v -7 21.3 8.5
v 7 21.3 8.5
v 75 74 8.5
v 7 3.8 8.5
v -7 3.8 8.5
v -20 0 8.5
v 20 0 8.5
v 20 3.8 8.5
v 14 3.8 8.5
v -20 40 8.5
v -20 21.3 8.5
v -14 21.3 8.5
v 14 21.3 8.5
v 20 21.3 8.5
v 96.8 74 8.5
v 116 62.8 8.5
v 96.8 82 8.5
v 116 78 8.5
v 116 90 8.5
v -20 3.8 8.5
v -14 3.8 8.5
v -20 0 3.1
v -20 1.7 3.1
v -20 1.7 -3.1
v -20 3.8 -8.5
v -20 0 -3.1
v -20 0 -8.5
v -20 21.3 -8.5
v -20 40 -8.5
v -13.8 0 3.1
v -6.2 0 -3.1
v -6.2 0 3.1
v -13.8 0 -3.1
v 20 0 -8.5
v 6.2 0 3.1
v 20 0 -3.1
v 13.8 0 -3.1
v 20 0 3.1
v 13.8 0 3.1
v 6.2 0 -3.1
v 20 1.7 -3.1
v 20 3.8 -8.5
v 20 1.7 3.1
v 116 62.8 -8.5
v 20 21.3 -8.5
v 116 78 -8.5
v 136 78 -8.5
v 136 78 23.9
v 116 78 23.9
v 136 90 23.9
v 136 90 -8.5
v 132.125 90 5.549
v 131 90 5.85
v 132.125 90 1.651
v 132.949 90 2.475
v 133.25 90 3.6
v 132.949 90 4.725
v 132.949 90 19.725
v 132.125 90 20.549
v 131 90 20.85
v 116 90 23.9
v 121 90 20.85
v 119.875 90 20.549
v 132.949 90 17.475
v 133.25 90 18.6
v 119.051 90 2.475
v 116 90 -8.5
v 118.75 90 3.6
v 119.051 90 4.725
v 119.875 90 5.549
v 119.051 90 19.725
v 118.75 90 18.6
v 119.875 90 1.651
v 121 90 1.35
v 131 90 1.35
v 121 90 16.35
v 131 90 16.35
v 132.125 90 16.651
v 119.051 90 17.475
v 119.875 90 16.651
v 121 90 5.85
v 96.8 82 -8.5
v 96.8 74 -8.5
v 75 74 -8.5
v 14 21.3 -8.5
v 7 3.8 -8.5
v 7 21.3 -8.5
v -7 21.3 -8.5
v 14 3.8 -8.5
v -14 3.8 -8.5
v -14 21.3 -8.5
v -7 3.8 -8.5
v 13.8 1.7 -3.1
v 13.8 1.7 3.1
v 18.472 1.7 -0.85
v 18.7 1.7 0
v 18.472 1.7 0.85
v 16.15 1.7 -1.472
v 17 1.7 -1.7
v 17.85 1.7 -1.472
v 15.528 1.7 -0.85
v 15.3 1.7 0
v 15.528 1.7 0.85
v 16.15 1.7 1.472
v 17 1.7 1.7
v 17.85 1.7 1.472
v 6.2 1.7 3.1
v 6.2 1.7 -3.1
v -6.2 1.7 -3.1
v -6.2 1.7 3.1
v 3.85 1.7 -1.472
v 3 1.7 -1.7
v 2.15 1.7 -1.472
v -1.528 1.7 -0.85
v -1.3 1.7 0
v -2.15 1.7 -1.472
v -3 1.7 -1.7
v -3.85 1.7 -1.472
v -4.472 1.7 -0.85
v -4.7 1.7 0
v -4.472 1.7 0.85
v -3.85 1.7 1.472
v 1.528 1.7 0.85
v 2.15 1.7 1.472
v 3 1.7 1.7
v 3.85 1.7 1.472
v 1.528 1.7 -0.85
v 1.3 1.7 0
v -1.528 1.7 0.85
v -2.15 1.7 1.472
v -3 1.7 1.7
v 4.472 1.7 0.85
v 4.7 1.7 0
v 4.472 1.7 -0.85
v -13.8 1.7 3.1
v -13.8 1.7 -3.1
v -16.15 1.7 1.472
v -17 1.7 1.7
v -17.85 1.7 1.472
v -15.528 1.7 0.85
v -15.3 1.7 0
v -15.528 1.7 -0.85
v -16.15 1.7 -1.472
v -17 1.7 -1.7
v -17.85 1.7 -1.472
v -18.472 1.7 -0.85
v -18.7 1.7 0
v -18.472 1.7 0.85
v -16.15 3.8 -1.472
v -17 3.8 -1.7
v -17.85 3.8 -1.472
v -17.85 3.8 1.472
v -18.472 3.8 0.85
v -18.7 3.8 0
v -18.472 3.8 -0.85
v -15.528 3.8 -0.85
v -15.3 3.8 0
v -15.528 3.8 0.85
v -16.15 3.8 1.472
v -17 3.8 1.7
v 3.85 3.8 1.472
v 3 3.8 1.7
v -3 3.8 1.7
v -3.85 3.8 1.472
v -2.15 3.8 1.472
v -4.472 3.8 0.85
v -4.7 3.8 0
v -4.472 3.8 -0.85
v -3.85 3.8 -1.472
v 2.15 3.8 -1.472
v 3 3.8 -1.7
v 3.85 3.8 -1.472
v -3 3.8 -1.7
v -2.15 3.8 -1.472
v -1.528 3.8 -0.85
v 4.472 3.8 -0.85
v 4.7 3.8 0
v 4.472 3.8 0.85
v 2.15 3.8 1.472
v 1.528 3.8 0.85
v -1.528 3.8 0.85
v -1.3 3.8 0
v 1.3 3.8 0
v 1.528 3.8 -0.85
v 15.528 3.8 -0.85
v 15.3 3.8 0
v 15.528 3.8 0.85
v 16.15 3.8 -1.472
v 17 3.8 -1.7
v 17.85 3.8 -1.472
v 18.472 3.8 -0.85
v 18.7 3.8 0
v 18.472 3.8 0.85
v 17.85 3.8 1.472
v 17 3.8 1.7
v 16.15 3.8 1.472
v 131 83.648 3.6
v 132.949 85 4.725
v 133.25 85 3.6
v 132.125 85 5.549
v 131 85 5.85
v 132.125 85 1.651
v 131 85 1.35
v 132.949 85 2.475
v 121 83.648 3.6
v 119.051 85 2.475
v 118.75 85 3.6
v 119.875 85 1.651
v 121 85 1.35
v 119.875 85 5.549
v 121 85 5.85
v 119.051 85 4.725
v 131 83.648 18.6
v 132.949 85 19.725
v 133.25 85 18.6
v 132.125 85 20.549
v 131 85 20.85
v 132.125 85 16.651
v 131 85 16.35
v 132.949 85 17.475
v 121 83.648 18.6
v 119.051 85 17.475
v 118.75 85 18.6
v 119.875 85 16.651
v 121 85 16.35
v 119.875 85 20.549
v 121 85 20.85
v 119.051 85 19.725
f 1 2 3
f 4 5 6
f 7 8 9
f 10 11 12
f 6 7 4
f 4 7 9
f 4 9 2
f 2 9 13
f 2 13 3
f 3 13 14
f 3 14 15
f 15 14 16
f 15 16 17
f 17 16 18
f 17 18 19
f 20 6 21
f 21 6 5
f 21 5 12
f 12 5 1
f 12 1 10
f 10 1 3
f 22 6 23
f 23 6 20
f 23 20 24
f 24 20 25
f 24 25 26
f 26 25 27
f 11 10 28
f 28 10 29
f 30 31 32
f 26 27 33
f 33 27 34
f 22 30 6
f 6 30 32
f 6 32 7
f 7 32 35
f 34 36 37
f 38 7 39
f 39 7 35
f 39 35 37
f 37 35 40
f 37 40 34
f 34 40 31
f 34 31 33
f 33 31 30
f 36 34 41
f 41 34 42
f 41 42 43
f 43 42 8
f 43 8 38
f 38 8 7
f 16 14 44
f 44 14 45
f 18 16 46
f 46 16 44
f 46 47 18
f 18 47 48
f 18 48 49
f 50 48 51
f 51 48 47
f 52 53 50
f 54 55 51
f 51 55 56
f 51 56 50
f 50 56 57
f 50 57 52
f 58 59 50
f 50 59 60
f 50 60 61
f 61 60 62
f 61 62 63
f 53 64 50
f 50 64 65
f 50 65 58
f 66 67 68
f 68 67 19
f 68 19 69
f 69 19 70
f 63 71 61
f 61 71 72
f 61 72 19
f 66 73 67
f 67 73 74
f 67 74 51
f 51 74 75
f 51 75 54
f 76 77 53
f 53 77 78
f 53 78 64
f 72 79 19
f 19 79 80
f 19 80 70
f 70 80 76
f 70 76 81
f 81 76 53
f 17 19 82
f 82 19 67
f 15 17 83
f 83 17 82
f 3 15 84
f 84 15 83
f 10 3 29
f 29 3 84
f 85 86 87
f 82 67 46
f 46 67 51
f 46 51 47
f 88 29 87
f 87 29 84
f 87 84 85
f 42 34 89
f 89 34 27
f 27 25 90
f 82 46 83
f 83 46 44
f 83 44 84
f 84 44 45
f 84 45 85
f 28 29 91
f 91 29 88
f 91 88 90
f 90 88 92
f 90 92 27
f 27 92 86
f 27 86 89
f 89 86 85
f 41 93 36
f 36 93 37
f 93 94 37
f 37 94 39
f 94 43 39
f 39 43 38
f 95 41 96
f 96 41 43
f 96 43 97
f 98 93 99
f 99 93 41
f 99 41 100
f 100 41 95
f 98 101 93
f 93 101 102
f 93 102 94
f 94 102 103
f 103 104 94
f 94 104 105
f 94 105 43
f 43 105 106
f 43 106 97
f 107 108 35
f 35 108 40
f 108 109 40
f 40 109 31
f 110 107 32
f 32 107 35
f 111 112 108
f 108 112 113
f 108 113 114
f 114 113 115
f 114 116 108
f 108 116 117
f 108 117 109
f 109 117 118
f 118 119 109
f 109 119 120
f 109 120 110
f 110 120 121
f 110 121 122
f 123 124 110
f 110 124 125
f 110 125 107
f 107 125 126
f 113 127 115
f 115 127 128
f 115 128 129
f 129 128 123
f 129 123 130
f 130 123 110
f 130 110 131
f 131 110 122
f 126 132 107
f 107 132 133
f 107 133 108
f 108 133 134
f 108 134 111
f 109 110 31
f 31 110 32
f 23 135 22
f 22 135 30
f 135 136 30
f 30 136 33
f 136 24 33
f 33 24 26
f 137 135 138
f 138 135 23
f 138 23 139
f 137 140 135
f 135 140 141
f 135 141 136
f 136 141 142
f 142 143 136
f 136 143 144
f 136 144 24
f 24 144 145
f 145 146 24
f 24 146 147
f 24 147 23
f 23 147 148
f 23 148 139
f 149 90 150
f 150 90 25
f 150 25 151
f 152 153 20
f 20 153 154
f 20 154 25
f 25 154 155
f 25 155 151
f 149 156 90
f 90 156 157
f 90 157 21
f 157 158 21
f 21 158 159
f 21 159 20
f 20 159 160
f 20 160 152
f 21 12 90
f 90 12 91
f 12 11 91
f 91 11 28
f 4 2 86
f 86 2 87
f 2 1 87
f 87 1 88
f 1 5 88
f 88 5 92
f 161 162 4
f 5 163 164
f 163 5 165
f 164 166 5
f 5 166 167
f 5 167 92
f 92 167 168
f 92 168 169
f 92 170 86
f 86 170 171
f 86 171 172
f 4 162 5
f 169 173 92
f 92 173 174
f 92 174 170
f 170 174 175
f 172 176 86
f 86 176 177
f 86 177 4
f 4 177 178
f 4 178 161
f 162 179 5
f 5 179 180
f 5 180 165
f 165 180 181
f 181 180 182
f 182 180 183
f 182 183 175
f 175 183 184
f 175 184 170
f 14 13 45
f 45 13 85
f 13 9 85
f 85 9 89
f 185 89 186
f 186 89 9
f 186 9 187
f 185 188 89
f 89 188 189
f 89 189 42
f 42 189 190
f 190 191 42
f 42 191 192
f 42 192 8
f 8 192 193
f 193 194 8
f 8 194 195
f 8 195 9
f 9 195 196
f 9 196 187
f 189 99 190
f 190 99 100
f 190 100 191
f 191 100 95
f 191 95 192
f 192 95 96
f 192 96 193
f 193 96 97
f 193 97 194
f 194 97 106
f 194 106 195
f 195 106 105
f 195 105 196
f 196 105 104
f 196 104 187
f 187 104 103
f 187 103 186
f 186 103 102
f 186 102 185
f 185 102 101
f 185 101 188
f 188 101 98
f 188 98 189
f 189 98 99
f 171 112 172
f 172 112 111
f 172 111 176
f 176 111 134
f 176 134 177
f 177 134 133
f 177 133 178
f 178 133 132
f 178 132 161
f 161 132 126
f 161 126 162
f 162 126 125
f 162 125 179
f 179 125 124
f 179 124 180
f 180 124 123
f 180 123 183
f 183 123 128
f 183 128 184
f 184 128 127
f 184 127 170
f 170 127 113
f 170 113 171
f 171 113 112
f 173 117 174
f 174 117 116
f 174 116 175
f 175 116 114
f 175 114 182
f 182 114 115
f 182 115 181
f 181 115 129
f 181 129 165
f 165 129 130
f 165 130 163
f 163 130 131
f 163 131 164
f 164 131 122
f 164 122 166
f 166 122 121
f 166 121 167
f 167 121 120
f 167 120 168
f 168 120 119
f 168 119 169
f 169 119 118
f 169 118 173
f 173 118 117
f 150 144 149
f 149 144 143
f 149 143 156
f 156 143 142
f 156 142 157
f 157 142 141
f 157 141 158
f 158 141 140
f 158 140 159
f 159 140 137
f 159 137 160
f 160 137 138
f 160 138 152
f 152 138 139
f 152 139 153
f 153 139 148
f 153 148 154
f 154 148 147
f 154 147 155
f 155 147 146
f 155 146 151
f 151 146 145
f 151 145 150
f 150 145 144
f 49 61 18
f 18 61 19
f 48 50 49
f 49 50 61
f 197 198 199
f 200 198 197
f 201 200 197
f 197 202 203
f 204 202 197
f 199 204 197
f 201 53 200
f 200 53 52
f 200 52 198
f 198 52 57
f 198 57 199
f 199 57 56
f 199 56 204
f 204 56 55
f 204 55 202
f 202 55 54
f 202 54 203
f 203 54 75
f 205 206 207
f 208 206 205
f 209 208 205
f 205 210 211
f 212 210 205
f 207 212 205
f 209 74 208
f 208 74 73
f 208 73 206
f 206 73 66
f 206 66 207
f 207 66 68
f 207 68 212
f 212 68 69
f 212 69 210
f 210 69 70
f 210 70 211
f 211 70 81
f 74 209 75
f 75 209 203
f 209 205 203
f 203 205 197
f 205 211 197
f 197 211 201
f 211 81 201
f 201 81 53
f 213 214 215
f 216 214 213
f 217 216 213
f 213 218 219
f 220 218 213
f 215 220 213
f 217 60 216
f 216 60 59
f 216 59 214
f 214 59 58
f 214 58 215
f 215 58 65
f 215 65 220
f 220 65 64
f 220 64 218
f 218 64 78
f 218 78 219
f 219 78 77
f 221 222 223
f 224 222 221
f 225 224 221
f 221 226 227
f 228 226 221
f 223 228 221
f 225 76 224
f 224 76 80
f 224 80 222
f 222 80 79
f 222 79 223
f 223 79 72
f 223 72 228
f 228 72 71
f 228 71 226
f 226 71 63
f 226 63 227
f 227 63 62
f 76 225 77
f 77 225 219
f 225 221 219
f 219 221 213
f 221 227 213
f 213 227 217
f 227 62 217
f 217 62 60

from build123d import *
from build123d.topology import SkipClean

# Parameters (mm, degrees)
EXTRUDE_1_DEPTH          = 8.5
SKETCH_2_W               = 6.2
SKETCH_2_H               = 6.2
CUT_EXTRUDE_1_DEPTH      = 1.7
SKETCH_3_W               = 6
SKETCH_3_H               = 17.5
SKETCH_3_W_2             = 14
CUT_EXTRUDE_2_DEPTH      = 164.966459985
HOLE_WIZARD_M3_1_D       = 3.4
HOLE_WIZARD_M3_1_DEPTH   = 5
HOLE_WIZARD_M3_1_TIP     = 1.021463052
SKETCH_6_W               = 20
SKETCH_6_H               = 12
EXTRUDE_2_DEPTH          = 15.4
HOLE_START               = 85
HOLE_WIZARD_M4_1_DEPTH   = 5
HOLE_START_2             = 121
HOLE_WIZARD_M4_1_2_DEPTH = 10


with BuildPart() as part:
    # 스케치1 → 보스-돌출1 (new, symmetric)
    with BuildSketch(Plane.XY):
        Polygon((20, 0), (-20, 0), (-20, 40), (75, 74), (96.8, 74), (96.8, 82), (116, 90), (136, 90), (136, 78), (116, 78), (116, 62.8), (20, 21.3), align=None)
    extrude(amount=EXTRUDE_1_DEPTH, both=True)

    # 스케치2 → 컷-돌출1 (cut)
    with BuildSketch(Plane(origin=(0, 0, 0), x_dir=(-1, 0, 0), z_dir=(0, -1, 0))):
        with Locations((-3.1, 0)):
            Rectangle(SKETCH_2_W, SKETCH_2_H)
        with Locations((-16.9, 0)):
            Rectangle(SKETCH_2_W, SKETCH_2_H)
    cut_extrude_1 = extrude(amount=-CUT_EXTRUDE_1_DEPTH, mode=Mode.SUBTRACT)

    # 대칭 복사1: 컷-돌출1 across plane
    add(cut_extrude_1.mirror(Plane(origin=(0, 0, 0), x_dir=(0, 0, 1), z_dir=(1, 0, 0))), mode=Mode.SUBTRACT)

    # 스케치3 → 컷-돌출2 (cut, through all)
    with BuildSketch(Plane(origin=(0, 0, -8.5), x_dir=(-1, 0, 0), z_dir=(0, 0, -1))):
        with Locations((-17, 12.55)):
            Rectangle(SKETCH_3_W, SKETCH_3_H)
        with Locations((0, 12.55)):
            Rectangle(SKETCH_3_W_2, SKETCH_3_H)
        with Locations((17, 12.55)):
            Rectangle(SKETCH_3_W, SKETCH_3_H)
    extrude(amount=-CUT_EXTRUDE_2_DEPTH, mode=Mode.SUBTRACT)

    # M3 여유 구멍1
    with Locations(Plane(origin=(0, 1.7, 0), x_dir=(-1, 0, 0), z_dir=(0, -1, 0))):
        with Locations((17, 0), (3, 0), (-3, 0), (-17, 0)):
            Hole(HOLE_WIZARD_M3_1_D / 2, depth=HOLE_WIZARD_M3_1_DEPTH)
            with Locations((0, 0, -(HOLE_WIZARD_M3_1_DEPTH + HOLE_WIZARD_M3_1_TIP / 2))):  # 118° drill point
                Cone(0, HOLE_WIZARD_M3_1_D / 2, HOLE_WIZARD_M3_1_TIP, mode=Mode.SUBTRACT)

    # 스케치6 → 보스-돌출2 (add)
    with BuildSketch(Plane.XY.offset(8.5)):
        with Locations((126, 84)):
            Rectangle(SKETCH_6_W, SKETCH_6_H)
    extrude(amount=EXTRUDE_2_DEPTH)

    # M4 여유 홈1: read off the stored shape, not the designer's step
    # M4 여유 홈1 outline → M4 여유 홈1 (cut)
    with BuildSketch(Plane(origin=(0, 0, 0), x_dir=(1, 0, 0), z_dir=(0, 1, 0)).offset(HOLE_START)):
        with BuildLine():
            Line((121, -5.85), (131, -5.85))
            ThreePointArc((131, -5.85), (133.25, -3.6), (131, -1.35))
            Line((131, -1.35), (121, -1.35))
            ThreePointArc((121, -1.35), (118.75, -3.6), (121, -5.85))
        make_face()
        with BuildLine():
            Line((121, -20.85), (131, -20.85))
            ThreePointArc((131, -20.85), (133.25, -18.6), (131, -16.35))
            Line((131, -16.35), (121, -16.35))
            ThreePointArc((121, -16.35), (118.75, -18.6), (121, -20.85))
        make_face()
    extrude(amount=HOLE_WIZARD_M4_1_DEPTH, mode=Mode.SUBTRACT)

    # Hole Wizard M4 _ _1 2 outline → Hole Wizard M4 _ _1 2 (cut)
    with BuildSketch(Plane.YZ.offset(HOLE_START_2)):
        Polygon((85, 5.85), (83.648063607, 3.6), (85, 1.35), align=None)
        Polygon((85, 20.85), (83.648063607, 18.6), (85, 16.35), align=None)
    extrude(amount=HOLE_WIZARD_M4_1_2_DEPTH, mode=Mode.SUBTRACT)

    # Hole Wizard M4 _ _1 3 outline → Hole Wizard M4 _ _1 3 (revolve, cut)
    with SkipClean():  # the faces are left unmerged after this step: merging them gives an invalid solid
        with BuildSketch(Plane(origin=(131, 0, 3.6), x_dir=(1, 0, 0), z_dir=(0, 0, 1))):
            Polygon((0, 85), (0, 83.648063607), (2.25, 85), align=None)
        revolve(axis=Axis((131, 0, 3.6), (0, 1, 0)), mode=Mode.SUBTRACT)

    # Hole Wizard M4 _ _1 4 outline → Hole Wizard M4 _ _1 4 (revolve, cut)
    with SkipClean():  # the faces are left unmerged after this step: merging them gives an invalid solid
        with BuildSketch(Plane(origin=(121, 0, 3.6), x_dir=(1, 0, 0), z_dir=(0, 0, 1))):
            Polygon((0, 85), (0, 83.648063607), (2.25, 85), align=None)
        revolve(axis=Axis((121, 0, 3.6), (0, 1, 0)), mode=Mode.SUBTRACT)

    # Hole Wizard M4 _ _1 5 outline → Hole Wizard M4 _ _1 5 (revolve, cut)
    with SkipClean():  # the faces are left unmerged after this step: merging them gives an invalid solid
        with BuildSketch(Plane(origin=(131, 0, 18.6), x_dir=(1, 0, 0), z_dir=(0, 0, 1))):
            Polygon((0, 85), (0, 83.648063607), (2.25, 85), align=None)
        revolve(axis=Axis((131, 0, 18.6), (0, 1, 0)), mode=Mode.SUBTRACT)

    # Hole Wizard M4 _ _1 6 outline → Hole Wizard M4 _ _1 6 (revolve, cut)
    with SkipClean():  # the faces are left unmerged after this step: merging them gives an invalid solid
        with BuildSketch(Plane(origin=(121, 0, 18.6), x_dir=(1, 0, 0), z_dir=(0, 0, 1))):
            Polygon((0, 85), (0, 83.648063607), (2.25, 85), align=None)
        revolve(axis=Axis((121, 0, 18.6), (0, 1, 0)), mode=Mode.SUBTRACT)


solid = part.part
